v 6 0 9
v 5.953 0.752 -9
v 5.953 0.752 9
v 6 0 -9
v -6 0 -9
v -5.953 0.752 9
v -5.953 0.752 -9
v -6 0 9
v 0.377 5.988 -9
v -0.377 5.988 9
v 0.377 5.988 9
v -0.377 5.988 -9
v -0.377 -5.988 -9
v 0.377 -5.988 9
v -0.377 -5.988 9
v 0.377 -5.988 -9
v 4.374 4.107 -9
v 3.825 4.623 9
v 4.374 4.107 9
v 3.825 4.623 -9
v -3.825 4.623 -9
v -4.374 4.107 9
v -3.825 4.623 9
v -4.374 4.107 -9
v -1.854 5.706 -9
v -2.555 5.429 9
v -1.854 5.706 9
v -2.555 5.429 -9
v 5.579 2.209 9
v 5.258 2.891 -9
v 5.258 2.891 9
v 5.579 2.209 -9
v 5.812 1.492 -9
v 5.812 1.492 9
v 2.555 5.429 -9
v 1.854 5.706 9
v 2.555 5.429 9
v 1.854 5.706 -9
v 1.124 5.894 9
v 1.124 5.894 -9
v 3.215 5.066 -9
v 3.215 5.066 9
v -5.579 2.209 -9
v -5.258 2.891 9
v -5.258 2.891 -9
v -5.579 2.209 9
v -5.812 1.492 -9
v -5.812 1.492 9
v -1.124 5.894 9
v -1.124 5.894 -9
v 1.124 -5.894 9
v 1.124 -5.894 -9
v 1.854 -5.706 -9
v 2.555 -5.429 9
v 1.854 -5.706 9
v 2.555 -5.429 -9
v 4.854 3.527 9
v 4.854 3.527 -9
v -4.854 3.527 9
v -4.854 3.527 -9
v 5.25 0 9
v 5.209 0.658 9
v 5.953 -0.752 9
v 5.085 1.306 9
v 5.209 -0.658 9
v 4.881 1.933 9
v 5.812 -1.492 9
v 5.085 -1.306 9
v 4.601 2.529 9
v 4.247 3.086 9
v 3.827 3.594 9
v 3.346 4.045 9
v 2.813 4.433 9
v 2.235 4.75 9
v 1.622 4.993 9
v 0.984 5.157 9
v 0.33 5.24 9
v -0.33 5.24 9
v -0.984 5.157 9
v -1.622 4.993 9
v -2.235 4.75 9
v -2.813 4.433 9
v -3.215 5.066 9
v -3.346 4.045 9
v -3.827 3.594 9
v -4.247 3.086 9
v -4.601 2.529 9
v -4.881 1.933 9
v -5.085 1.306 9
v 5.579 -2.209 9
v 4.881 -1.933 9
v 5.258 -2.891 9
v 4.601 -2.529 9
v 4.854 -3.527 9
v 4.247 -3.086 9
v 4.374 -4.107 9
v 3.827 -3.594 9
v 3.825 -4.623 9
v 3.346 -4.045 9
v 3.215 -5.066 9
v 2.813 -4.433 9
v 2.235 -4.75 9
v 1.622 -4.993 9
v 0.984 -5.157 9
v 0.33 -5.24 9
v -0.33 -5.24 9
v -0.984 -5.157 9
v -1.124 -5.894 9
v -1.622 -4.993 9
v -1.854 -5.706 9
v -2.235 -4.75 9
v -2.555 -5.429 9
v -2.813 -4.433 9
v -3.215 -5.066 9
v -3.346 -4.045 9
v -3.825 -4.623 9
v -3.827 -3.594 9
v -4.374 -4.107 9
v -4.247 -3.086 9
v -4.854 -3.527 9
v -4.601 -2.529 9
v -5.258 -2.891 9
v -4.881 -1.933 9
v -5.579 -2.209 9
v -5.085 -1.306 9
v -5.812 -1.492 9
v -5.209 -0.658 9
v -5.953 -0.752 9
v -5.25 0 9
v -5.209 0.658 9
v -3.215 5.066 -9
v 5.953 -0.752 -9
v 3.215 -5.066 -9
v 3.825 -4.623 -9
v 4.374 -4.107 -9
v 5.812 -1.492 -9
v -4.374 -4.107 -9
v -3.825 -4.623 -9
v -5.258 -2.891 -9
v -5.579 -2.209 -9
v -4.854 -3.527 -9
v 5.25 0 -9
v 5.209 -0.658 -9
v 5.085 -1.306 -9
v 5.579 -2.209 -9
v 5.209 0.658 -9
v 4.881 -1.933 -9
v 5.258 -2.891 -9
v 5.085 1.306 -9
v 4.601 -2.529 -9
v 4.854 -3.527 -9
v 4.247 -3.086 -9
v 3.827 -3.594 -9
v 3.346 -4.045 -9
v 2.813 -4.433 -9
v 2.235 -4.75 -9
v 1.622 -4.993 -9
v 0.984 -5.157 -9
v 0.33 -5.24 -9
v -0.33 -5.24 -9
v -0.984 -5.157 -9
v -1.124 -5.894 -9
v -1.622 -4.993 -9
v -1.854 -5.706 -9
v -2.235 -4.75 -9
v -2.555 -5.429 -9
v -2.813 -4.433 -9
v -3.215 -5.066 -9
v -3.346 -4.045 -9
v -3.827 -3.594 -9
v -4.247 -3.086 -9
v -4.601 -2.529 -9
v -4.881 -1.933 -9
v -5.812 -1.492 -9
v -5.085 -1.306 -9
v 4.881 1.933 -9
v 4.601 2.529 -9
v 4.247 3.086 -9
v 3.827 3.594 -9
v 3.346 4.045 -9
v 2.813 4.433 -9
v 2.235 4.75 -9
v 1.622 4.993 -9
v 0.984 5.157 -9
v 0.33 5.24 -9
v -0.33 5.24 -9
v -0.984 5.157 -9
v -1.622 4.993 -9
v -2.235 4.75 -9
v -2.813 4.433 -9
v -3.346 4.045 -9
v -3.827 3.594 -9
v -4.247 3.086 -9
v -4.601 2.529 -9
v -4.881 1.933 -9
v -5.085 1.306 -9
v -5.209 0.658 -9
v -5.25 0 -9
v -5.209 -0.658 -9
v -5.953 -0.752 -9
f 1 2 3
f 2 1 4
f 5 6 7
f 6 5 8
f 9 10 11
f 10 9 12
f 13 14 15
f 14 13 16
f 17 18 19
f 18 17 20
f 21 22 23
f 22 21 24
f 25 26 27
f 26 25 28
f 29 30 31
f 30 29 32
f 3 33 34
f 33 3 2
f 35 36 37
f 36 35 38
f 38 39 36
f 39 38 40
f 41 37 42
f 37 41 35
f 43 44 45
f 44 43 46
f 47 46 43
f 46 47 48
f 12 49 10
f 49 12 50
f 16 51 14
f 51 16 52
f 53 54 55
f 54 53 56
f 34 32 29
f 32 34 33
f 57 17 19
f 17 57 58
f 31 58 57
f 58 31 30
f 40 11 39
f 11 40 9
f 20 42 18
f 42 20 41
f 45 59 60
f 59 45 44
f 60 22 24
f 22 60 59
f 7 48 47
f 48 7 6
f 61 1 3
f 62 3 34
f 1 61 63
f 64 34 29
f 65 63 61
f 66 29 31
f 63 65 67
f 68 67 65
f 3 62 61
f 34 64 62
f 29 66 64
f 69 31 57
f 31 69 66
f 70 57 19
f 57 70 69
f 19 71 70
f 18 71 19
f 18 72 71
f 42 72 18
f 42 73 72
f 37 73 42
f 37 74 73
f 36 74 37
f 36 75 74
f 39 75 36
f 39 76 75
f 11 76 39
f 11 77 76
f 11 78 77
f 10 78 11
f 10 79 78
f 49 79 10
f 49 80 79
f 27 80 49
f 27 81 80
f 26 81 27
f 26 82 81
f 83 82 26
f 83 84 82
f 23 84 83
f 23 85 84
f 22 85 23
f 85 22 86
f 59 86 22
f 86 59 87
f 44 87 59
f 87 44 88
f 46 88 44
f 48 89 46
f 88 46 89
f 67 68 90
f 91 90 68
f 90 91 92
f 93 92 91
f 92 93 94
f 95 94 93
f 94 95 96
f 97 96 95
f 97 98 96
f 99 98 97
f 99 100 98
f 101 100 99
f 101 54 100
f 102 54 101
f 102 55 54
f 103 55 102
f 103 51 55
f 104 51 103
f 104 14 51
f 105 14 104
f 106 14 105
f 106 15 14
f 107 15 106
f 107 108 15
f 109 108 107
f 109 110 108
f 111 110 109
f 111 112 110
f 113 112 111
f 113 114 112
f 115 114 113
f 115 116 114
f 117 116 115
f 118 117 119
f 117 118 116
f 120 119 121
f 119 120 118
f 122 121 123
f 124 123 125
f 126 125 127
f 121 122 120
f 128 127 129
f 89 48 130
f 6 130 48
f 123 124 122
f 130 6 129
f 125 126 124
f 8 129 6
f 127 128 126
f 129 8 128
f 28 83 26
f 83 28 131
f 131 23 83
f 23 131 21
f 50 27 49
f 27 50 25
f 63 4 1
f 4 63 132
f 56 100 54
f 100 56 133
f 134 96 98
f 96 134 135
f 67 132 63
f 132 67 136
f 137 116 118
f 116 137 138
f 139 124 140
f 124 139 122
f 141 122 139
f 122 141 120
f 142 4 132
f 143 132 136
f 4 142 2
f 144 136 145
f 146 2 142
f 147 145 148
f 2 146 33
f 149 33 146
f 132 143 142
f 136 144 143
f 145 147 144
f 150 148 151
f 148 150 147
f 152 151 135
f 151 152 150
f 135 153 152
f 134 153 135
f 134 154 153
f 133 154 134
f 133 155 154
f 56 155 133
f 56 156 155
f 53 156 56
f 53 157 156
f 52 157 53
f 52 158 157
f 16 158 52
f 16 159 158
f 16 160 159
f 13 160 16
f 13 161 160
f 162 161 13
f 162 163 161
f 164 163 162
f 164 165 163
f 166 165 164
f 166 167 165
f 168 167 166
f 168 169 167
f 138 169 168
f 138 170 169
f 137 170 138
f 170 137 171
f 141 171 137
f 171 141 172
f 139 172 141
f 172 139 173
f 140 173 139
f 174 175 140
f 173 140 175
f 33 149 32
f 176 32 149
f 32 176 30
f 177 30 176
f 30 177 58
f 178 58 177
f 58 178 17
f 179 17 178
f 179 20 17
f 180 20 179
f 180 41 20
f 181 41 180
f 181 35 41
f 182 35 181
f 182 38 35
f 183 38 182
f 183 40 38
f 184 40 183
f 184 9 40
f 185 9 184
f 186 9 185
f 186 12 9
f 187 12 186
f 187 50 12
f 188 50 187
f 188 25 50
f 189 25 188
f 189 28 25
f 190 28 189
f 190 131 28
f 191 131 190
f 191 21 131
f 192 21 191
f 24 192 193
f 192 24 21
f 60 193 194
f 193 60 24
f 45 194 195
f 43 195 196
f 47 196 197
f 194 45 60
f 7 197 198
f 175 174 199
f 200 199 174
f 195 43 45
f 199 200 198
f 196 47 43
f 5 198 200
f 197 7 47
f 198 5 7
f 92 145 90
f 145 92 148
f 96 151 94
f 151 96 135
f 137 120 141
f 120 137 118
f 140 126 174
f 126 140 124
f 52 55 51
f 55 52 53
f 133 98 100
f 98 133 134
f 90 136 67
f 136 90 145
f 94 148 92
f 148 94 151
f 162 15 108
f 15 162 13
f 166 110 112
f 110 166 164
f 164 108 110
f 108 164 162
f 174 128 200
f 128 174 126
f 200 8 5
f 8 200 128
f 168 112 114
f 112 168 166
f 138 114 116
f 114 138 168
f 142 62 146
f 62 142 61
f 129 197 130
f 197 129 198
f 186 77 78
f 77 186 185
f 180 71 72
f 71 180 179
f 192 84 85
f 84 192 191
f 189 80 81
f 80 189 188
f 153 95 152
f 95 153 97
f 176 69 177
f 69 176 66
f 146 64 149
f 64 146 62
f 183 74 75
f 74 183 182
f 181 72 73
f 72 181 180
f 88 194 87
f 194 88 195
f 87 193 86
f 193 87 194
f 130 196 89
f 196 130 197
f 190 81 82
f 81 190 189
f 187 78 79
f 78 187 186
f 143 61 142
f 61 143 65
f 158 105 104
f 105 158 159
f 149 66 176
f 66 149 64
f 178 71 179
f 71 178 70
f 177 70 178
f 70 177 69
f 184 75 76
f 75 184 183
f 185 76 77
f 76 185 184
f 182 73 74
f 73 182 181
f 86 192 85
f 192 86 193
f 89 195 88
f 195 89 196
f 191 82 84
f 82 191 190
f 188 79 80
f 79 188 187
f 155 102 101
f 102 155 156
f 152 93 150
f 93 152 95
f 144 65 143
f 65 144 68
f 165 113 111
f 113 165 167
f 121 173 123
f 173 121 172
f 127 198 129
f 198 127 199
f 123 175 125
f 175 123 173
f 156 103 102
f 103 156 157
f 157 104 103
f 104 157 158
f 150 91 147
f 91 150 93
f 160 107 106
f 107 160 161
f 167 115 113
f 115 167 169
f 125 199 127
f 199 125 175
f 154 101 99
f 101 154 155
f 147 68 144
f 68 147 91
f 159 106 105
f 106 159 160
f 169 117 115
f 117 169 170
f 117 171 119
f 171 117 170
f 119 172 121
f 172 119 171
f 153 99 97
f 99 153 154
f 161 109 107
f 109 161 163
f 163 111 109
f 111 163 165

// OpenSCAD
$fn = 50;


difference() {
	union() {
		translate(v = [0, 0, -9.0000000000]) {
			cylinder(h = 18, r = 6.0000000000);
		}
	}
	union() {
		translate(v = [0, 0, -100.0000000000]) {
			cylinder(h = 200, r = 5.2500000000);
		}
	}
}
